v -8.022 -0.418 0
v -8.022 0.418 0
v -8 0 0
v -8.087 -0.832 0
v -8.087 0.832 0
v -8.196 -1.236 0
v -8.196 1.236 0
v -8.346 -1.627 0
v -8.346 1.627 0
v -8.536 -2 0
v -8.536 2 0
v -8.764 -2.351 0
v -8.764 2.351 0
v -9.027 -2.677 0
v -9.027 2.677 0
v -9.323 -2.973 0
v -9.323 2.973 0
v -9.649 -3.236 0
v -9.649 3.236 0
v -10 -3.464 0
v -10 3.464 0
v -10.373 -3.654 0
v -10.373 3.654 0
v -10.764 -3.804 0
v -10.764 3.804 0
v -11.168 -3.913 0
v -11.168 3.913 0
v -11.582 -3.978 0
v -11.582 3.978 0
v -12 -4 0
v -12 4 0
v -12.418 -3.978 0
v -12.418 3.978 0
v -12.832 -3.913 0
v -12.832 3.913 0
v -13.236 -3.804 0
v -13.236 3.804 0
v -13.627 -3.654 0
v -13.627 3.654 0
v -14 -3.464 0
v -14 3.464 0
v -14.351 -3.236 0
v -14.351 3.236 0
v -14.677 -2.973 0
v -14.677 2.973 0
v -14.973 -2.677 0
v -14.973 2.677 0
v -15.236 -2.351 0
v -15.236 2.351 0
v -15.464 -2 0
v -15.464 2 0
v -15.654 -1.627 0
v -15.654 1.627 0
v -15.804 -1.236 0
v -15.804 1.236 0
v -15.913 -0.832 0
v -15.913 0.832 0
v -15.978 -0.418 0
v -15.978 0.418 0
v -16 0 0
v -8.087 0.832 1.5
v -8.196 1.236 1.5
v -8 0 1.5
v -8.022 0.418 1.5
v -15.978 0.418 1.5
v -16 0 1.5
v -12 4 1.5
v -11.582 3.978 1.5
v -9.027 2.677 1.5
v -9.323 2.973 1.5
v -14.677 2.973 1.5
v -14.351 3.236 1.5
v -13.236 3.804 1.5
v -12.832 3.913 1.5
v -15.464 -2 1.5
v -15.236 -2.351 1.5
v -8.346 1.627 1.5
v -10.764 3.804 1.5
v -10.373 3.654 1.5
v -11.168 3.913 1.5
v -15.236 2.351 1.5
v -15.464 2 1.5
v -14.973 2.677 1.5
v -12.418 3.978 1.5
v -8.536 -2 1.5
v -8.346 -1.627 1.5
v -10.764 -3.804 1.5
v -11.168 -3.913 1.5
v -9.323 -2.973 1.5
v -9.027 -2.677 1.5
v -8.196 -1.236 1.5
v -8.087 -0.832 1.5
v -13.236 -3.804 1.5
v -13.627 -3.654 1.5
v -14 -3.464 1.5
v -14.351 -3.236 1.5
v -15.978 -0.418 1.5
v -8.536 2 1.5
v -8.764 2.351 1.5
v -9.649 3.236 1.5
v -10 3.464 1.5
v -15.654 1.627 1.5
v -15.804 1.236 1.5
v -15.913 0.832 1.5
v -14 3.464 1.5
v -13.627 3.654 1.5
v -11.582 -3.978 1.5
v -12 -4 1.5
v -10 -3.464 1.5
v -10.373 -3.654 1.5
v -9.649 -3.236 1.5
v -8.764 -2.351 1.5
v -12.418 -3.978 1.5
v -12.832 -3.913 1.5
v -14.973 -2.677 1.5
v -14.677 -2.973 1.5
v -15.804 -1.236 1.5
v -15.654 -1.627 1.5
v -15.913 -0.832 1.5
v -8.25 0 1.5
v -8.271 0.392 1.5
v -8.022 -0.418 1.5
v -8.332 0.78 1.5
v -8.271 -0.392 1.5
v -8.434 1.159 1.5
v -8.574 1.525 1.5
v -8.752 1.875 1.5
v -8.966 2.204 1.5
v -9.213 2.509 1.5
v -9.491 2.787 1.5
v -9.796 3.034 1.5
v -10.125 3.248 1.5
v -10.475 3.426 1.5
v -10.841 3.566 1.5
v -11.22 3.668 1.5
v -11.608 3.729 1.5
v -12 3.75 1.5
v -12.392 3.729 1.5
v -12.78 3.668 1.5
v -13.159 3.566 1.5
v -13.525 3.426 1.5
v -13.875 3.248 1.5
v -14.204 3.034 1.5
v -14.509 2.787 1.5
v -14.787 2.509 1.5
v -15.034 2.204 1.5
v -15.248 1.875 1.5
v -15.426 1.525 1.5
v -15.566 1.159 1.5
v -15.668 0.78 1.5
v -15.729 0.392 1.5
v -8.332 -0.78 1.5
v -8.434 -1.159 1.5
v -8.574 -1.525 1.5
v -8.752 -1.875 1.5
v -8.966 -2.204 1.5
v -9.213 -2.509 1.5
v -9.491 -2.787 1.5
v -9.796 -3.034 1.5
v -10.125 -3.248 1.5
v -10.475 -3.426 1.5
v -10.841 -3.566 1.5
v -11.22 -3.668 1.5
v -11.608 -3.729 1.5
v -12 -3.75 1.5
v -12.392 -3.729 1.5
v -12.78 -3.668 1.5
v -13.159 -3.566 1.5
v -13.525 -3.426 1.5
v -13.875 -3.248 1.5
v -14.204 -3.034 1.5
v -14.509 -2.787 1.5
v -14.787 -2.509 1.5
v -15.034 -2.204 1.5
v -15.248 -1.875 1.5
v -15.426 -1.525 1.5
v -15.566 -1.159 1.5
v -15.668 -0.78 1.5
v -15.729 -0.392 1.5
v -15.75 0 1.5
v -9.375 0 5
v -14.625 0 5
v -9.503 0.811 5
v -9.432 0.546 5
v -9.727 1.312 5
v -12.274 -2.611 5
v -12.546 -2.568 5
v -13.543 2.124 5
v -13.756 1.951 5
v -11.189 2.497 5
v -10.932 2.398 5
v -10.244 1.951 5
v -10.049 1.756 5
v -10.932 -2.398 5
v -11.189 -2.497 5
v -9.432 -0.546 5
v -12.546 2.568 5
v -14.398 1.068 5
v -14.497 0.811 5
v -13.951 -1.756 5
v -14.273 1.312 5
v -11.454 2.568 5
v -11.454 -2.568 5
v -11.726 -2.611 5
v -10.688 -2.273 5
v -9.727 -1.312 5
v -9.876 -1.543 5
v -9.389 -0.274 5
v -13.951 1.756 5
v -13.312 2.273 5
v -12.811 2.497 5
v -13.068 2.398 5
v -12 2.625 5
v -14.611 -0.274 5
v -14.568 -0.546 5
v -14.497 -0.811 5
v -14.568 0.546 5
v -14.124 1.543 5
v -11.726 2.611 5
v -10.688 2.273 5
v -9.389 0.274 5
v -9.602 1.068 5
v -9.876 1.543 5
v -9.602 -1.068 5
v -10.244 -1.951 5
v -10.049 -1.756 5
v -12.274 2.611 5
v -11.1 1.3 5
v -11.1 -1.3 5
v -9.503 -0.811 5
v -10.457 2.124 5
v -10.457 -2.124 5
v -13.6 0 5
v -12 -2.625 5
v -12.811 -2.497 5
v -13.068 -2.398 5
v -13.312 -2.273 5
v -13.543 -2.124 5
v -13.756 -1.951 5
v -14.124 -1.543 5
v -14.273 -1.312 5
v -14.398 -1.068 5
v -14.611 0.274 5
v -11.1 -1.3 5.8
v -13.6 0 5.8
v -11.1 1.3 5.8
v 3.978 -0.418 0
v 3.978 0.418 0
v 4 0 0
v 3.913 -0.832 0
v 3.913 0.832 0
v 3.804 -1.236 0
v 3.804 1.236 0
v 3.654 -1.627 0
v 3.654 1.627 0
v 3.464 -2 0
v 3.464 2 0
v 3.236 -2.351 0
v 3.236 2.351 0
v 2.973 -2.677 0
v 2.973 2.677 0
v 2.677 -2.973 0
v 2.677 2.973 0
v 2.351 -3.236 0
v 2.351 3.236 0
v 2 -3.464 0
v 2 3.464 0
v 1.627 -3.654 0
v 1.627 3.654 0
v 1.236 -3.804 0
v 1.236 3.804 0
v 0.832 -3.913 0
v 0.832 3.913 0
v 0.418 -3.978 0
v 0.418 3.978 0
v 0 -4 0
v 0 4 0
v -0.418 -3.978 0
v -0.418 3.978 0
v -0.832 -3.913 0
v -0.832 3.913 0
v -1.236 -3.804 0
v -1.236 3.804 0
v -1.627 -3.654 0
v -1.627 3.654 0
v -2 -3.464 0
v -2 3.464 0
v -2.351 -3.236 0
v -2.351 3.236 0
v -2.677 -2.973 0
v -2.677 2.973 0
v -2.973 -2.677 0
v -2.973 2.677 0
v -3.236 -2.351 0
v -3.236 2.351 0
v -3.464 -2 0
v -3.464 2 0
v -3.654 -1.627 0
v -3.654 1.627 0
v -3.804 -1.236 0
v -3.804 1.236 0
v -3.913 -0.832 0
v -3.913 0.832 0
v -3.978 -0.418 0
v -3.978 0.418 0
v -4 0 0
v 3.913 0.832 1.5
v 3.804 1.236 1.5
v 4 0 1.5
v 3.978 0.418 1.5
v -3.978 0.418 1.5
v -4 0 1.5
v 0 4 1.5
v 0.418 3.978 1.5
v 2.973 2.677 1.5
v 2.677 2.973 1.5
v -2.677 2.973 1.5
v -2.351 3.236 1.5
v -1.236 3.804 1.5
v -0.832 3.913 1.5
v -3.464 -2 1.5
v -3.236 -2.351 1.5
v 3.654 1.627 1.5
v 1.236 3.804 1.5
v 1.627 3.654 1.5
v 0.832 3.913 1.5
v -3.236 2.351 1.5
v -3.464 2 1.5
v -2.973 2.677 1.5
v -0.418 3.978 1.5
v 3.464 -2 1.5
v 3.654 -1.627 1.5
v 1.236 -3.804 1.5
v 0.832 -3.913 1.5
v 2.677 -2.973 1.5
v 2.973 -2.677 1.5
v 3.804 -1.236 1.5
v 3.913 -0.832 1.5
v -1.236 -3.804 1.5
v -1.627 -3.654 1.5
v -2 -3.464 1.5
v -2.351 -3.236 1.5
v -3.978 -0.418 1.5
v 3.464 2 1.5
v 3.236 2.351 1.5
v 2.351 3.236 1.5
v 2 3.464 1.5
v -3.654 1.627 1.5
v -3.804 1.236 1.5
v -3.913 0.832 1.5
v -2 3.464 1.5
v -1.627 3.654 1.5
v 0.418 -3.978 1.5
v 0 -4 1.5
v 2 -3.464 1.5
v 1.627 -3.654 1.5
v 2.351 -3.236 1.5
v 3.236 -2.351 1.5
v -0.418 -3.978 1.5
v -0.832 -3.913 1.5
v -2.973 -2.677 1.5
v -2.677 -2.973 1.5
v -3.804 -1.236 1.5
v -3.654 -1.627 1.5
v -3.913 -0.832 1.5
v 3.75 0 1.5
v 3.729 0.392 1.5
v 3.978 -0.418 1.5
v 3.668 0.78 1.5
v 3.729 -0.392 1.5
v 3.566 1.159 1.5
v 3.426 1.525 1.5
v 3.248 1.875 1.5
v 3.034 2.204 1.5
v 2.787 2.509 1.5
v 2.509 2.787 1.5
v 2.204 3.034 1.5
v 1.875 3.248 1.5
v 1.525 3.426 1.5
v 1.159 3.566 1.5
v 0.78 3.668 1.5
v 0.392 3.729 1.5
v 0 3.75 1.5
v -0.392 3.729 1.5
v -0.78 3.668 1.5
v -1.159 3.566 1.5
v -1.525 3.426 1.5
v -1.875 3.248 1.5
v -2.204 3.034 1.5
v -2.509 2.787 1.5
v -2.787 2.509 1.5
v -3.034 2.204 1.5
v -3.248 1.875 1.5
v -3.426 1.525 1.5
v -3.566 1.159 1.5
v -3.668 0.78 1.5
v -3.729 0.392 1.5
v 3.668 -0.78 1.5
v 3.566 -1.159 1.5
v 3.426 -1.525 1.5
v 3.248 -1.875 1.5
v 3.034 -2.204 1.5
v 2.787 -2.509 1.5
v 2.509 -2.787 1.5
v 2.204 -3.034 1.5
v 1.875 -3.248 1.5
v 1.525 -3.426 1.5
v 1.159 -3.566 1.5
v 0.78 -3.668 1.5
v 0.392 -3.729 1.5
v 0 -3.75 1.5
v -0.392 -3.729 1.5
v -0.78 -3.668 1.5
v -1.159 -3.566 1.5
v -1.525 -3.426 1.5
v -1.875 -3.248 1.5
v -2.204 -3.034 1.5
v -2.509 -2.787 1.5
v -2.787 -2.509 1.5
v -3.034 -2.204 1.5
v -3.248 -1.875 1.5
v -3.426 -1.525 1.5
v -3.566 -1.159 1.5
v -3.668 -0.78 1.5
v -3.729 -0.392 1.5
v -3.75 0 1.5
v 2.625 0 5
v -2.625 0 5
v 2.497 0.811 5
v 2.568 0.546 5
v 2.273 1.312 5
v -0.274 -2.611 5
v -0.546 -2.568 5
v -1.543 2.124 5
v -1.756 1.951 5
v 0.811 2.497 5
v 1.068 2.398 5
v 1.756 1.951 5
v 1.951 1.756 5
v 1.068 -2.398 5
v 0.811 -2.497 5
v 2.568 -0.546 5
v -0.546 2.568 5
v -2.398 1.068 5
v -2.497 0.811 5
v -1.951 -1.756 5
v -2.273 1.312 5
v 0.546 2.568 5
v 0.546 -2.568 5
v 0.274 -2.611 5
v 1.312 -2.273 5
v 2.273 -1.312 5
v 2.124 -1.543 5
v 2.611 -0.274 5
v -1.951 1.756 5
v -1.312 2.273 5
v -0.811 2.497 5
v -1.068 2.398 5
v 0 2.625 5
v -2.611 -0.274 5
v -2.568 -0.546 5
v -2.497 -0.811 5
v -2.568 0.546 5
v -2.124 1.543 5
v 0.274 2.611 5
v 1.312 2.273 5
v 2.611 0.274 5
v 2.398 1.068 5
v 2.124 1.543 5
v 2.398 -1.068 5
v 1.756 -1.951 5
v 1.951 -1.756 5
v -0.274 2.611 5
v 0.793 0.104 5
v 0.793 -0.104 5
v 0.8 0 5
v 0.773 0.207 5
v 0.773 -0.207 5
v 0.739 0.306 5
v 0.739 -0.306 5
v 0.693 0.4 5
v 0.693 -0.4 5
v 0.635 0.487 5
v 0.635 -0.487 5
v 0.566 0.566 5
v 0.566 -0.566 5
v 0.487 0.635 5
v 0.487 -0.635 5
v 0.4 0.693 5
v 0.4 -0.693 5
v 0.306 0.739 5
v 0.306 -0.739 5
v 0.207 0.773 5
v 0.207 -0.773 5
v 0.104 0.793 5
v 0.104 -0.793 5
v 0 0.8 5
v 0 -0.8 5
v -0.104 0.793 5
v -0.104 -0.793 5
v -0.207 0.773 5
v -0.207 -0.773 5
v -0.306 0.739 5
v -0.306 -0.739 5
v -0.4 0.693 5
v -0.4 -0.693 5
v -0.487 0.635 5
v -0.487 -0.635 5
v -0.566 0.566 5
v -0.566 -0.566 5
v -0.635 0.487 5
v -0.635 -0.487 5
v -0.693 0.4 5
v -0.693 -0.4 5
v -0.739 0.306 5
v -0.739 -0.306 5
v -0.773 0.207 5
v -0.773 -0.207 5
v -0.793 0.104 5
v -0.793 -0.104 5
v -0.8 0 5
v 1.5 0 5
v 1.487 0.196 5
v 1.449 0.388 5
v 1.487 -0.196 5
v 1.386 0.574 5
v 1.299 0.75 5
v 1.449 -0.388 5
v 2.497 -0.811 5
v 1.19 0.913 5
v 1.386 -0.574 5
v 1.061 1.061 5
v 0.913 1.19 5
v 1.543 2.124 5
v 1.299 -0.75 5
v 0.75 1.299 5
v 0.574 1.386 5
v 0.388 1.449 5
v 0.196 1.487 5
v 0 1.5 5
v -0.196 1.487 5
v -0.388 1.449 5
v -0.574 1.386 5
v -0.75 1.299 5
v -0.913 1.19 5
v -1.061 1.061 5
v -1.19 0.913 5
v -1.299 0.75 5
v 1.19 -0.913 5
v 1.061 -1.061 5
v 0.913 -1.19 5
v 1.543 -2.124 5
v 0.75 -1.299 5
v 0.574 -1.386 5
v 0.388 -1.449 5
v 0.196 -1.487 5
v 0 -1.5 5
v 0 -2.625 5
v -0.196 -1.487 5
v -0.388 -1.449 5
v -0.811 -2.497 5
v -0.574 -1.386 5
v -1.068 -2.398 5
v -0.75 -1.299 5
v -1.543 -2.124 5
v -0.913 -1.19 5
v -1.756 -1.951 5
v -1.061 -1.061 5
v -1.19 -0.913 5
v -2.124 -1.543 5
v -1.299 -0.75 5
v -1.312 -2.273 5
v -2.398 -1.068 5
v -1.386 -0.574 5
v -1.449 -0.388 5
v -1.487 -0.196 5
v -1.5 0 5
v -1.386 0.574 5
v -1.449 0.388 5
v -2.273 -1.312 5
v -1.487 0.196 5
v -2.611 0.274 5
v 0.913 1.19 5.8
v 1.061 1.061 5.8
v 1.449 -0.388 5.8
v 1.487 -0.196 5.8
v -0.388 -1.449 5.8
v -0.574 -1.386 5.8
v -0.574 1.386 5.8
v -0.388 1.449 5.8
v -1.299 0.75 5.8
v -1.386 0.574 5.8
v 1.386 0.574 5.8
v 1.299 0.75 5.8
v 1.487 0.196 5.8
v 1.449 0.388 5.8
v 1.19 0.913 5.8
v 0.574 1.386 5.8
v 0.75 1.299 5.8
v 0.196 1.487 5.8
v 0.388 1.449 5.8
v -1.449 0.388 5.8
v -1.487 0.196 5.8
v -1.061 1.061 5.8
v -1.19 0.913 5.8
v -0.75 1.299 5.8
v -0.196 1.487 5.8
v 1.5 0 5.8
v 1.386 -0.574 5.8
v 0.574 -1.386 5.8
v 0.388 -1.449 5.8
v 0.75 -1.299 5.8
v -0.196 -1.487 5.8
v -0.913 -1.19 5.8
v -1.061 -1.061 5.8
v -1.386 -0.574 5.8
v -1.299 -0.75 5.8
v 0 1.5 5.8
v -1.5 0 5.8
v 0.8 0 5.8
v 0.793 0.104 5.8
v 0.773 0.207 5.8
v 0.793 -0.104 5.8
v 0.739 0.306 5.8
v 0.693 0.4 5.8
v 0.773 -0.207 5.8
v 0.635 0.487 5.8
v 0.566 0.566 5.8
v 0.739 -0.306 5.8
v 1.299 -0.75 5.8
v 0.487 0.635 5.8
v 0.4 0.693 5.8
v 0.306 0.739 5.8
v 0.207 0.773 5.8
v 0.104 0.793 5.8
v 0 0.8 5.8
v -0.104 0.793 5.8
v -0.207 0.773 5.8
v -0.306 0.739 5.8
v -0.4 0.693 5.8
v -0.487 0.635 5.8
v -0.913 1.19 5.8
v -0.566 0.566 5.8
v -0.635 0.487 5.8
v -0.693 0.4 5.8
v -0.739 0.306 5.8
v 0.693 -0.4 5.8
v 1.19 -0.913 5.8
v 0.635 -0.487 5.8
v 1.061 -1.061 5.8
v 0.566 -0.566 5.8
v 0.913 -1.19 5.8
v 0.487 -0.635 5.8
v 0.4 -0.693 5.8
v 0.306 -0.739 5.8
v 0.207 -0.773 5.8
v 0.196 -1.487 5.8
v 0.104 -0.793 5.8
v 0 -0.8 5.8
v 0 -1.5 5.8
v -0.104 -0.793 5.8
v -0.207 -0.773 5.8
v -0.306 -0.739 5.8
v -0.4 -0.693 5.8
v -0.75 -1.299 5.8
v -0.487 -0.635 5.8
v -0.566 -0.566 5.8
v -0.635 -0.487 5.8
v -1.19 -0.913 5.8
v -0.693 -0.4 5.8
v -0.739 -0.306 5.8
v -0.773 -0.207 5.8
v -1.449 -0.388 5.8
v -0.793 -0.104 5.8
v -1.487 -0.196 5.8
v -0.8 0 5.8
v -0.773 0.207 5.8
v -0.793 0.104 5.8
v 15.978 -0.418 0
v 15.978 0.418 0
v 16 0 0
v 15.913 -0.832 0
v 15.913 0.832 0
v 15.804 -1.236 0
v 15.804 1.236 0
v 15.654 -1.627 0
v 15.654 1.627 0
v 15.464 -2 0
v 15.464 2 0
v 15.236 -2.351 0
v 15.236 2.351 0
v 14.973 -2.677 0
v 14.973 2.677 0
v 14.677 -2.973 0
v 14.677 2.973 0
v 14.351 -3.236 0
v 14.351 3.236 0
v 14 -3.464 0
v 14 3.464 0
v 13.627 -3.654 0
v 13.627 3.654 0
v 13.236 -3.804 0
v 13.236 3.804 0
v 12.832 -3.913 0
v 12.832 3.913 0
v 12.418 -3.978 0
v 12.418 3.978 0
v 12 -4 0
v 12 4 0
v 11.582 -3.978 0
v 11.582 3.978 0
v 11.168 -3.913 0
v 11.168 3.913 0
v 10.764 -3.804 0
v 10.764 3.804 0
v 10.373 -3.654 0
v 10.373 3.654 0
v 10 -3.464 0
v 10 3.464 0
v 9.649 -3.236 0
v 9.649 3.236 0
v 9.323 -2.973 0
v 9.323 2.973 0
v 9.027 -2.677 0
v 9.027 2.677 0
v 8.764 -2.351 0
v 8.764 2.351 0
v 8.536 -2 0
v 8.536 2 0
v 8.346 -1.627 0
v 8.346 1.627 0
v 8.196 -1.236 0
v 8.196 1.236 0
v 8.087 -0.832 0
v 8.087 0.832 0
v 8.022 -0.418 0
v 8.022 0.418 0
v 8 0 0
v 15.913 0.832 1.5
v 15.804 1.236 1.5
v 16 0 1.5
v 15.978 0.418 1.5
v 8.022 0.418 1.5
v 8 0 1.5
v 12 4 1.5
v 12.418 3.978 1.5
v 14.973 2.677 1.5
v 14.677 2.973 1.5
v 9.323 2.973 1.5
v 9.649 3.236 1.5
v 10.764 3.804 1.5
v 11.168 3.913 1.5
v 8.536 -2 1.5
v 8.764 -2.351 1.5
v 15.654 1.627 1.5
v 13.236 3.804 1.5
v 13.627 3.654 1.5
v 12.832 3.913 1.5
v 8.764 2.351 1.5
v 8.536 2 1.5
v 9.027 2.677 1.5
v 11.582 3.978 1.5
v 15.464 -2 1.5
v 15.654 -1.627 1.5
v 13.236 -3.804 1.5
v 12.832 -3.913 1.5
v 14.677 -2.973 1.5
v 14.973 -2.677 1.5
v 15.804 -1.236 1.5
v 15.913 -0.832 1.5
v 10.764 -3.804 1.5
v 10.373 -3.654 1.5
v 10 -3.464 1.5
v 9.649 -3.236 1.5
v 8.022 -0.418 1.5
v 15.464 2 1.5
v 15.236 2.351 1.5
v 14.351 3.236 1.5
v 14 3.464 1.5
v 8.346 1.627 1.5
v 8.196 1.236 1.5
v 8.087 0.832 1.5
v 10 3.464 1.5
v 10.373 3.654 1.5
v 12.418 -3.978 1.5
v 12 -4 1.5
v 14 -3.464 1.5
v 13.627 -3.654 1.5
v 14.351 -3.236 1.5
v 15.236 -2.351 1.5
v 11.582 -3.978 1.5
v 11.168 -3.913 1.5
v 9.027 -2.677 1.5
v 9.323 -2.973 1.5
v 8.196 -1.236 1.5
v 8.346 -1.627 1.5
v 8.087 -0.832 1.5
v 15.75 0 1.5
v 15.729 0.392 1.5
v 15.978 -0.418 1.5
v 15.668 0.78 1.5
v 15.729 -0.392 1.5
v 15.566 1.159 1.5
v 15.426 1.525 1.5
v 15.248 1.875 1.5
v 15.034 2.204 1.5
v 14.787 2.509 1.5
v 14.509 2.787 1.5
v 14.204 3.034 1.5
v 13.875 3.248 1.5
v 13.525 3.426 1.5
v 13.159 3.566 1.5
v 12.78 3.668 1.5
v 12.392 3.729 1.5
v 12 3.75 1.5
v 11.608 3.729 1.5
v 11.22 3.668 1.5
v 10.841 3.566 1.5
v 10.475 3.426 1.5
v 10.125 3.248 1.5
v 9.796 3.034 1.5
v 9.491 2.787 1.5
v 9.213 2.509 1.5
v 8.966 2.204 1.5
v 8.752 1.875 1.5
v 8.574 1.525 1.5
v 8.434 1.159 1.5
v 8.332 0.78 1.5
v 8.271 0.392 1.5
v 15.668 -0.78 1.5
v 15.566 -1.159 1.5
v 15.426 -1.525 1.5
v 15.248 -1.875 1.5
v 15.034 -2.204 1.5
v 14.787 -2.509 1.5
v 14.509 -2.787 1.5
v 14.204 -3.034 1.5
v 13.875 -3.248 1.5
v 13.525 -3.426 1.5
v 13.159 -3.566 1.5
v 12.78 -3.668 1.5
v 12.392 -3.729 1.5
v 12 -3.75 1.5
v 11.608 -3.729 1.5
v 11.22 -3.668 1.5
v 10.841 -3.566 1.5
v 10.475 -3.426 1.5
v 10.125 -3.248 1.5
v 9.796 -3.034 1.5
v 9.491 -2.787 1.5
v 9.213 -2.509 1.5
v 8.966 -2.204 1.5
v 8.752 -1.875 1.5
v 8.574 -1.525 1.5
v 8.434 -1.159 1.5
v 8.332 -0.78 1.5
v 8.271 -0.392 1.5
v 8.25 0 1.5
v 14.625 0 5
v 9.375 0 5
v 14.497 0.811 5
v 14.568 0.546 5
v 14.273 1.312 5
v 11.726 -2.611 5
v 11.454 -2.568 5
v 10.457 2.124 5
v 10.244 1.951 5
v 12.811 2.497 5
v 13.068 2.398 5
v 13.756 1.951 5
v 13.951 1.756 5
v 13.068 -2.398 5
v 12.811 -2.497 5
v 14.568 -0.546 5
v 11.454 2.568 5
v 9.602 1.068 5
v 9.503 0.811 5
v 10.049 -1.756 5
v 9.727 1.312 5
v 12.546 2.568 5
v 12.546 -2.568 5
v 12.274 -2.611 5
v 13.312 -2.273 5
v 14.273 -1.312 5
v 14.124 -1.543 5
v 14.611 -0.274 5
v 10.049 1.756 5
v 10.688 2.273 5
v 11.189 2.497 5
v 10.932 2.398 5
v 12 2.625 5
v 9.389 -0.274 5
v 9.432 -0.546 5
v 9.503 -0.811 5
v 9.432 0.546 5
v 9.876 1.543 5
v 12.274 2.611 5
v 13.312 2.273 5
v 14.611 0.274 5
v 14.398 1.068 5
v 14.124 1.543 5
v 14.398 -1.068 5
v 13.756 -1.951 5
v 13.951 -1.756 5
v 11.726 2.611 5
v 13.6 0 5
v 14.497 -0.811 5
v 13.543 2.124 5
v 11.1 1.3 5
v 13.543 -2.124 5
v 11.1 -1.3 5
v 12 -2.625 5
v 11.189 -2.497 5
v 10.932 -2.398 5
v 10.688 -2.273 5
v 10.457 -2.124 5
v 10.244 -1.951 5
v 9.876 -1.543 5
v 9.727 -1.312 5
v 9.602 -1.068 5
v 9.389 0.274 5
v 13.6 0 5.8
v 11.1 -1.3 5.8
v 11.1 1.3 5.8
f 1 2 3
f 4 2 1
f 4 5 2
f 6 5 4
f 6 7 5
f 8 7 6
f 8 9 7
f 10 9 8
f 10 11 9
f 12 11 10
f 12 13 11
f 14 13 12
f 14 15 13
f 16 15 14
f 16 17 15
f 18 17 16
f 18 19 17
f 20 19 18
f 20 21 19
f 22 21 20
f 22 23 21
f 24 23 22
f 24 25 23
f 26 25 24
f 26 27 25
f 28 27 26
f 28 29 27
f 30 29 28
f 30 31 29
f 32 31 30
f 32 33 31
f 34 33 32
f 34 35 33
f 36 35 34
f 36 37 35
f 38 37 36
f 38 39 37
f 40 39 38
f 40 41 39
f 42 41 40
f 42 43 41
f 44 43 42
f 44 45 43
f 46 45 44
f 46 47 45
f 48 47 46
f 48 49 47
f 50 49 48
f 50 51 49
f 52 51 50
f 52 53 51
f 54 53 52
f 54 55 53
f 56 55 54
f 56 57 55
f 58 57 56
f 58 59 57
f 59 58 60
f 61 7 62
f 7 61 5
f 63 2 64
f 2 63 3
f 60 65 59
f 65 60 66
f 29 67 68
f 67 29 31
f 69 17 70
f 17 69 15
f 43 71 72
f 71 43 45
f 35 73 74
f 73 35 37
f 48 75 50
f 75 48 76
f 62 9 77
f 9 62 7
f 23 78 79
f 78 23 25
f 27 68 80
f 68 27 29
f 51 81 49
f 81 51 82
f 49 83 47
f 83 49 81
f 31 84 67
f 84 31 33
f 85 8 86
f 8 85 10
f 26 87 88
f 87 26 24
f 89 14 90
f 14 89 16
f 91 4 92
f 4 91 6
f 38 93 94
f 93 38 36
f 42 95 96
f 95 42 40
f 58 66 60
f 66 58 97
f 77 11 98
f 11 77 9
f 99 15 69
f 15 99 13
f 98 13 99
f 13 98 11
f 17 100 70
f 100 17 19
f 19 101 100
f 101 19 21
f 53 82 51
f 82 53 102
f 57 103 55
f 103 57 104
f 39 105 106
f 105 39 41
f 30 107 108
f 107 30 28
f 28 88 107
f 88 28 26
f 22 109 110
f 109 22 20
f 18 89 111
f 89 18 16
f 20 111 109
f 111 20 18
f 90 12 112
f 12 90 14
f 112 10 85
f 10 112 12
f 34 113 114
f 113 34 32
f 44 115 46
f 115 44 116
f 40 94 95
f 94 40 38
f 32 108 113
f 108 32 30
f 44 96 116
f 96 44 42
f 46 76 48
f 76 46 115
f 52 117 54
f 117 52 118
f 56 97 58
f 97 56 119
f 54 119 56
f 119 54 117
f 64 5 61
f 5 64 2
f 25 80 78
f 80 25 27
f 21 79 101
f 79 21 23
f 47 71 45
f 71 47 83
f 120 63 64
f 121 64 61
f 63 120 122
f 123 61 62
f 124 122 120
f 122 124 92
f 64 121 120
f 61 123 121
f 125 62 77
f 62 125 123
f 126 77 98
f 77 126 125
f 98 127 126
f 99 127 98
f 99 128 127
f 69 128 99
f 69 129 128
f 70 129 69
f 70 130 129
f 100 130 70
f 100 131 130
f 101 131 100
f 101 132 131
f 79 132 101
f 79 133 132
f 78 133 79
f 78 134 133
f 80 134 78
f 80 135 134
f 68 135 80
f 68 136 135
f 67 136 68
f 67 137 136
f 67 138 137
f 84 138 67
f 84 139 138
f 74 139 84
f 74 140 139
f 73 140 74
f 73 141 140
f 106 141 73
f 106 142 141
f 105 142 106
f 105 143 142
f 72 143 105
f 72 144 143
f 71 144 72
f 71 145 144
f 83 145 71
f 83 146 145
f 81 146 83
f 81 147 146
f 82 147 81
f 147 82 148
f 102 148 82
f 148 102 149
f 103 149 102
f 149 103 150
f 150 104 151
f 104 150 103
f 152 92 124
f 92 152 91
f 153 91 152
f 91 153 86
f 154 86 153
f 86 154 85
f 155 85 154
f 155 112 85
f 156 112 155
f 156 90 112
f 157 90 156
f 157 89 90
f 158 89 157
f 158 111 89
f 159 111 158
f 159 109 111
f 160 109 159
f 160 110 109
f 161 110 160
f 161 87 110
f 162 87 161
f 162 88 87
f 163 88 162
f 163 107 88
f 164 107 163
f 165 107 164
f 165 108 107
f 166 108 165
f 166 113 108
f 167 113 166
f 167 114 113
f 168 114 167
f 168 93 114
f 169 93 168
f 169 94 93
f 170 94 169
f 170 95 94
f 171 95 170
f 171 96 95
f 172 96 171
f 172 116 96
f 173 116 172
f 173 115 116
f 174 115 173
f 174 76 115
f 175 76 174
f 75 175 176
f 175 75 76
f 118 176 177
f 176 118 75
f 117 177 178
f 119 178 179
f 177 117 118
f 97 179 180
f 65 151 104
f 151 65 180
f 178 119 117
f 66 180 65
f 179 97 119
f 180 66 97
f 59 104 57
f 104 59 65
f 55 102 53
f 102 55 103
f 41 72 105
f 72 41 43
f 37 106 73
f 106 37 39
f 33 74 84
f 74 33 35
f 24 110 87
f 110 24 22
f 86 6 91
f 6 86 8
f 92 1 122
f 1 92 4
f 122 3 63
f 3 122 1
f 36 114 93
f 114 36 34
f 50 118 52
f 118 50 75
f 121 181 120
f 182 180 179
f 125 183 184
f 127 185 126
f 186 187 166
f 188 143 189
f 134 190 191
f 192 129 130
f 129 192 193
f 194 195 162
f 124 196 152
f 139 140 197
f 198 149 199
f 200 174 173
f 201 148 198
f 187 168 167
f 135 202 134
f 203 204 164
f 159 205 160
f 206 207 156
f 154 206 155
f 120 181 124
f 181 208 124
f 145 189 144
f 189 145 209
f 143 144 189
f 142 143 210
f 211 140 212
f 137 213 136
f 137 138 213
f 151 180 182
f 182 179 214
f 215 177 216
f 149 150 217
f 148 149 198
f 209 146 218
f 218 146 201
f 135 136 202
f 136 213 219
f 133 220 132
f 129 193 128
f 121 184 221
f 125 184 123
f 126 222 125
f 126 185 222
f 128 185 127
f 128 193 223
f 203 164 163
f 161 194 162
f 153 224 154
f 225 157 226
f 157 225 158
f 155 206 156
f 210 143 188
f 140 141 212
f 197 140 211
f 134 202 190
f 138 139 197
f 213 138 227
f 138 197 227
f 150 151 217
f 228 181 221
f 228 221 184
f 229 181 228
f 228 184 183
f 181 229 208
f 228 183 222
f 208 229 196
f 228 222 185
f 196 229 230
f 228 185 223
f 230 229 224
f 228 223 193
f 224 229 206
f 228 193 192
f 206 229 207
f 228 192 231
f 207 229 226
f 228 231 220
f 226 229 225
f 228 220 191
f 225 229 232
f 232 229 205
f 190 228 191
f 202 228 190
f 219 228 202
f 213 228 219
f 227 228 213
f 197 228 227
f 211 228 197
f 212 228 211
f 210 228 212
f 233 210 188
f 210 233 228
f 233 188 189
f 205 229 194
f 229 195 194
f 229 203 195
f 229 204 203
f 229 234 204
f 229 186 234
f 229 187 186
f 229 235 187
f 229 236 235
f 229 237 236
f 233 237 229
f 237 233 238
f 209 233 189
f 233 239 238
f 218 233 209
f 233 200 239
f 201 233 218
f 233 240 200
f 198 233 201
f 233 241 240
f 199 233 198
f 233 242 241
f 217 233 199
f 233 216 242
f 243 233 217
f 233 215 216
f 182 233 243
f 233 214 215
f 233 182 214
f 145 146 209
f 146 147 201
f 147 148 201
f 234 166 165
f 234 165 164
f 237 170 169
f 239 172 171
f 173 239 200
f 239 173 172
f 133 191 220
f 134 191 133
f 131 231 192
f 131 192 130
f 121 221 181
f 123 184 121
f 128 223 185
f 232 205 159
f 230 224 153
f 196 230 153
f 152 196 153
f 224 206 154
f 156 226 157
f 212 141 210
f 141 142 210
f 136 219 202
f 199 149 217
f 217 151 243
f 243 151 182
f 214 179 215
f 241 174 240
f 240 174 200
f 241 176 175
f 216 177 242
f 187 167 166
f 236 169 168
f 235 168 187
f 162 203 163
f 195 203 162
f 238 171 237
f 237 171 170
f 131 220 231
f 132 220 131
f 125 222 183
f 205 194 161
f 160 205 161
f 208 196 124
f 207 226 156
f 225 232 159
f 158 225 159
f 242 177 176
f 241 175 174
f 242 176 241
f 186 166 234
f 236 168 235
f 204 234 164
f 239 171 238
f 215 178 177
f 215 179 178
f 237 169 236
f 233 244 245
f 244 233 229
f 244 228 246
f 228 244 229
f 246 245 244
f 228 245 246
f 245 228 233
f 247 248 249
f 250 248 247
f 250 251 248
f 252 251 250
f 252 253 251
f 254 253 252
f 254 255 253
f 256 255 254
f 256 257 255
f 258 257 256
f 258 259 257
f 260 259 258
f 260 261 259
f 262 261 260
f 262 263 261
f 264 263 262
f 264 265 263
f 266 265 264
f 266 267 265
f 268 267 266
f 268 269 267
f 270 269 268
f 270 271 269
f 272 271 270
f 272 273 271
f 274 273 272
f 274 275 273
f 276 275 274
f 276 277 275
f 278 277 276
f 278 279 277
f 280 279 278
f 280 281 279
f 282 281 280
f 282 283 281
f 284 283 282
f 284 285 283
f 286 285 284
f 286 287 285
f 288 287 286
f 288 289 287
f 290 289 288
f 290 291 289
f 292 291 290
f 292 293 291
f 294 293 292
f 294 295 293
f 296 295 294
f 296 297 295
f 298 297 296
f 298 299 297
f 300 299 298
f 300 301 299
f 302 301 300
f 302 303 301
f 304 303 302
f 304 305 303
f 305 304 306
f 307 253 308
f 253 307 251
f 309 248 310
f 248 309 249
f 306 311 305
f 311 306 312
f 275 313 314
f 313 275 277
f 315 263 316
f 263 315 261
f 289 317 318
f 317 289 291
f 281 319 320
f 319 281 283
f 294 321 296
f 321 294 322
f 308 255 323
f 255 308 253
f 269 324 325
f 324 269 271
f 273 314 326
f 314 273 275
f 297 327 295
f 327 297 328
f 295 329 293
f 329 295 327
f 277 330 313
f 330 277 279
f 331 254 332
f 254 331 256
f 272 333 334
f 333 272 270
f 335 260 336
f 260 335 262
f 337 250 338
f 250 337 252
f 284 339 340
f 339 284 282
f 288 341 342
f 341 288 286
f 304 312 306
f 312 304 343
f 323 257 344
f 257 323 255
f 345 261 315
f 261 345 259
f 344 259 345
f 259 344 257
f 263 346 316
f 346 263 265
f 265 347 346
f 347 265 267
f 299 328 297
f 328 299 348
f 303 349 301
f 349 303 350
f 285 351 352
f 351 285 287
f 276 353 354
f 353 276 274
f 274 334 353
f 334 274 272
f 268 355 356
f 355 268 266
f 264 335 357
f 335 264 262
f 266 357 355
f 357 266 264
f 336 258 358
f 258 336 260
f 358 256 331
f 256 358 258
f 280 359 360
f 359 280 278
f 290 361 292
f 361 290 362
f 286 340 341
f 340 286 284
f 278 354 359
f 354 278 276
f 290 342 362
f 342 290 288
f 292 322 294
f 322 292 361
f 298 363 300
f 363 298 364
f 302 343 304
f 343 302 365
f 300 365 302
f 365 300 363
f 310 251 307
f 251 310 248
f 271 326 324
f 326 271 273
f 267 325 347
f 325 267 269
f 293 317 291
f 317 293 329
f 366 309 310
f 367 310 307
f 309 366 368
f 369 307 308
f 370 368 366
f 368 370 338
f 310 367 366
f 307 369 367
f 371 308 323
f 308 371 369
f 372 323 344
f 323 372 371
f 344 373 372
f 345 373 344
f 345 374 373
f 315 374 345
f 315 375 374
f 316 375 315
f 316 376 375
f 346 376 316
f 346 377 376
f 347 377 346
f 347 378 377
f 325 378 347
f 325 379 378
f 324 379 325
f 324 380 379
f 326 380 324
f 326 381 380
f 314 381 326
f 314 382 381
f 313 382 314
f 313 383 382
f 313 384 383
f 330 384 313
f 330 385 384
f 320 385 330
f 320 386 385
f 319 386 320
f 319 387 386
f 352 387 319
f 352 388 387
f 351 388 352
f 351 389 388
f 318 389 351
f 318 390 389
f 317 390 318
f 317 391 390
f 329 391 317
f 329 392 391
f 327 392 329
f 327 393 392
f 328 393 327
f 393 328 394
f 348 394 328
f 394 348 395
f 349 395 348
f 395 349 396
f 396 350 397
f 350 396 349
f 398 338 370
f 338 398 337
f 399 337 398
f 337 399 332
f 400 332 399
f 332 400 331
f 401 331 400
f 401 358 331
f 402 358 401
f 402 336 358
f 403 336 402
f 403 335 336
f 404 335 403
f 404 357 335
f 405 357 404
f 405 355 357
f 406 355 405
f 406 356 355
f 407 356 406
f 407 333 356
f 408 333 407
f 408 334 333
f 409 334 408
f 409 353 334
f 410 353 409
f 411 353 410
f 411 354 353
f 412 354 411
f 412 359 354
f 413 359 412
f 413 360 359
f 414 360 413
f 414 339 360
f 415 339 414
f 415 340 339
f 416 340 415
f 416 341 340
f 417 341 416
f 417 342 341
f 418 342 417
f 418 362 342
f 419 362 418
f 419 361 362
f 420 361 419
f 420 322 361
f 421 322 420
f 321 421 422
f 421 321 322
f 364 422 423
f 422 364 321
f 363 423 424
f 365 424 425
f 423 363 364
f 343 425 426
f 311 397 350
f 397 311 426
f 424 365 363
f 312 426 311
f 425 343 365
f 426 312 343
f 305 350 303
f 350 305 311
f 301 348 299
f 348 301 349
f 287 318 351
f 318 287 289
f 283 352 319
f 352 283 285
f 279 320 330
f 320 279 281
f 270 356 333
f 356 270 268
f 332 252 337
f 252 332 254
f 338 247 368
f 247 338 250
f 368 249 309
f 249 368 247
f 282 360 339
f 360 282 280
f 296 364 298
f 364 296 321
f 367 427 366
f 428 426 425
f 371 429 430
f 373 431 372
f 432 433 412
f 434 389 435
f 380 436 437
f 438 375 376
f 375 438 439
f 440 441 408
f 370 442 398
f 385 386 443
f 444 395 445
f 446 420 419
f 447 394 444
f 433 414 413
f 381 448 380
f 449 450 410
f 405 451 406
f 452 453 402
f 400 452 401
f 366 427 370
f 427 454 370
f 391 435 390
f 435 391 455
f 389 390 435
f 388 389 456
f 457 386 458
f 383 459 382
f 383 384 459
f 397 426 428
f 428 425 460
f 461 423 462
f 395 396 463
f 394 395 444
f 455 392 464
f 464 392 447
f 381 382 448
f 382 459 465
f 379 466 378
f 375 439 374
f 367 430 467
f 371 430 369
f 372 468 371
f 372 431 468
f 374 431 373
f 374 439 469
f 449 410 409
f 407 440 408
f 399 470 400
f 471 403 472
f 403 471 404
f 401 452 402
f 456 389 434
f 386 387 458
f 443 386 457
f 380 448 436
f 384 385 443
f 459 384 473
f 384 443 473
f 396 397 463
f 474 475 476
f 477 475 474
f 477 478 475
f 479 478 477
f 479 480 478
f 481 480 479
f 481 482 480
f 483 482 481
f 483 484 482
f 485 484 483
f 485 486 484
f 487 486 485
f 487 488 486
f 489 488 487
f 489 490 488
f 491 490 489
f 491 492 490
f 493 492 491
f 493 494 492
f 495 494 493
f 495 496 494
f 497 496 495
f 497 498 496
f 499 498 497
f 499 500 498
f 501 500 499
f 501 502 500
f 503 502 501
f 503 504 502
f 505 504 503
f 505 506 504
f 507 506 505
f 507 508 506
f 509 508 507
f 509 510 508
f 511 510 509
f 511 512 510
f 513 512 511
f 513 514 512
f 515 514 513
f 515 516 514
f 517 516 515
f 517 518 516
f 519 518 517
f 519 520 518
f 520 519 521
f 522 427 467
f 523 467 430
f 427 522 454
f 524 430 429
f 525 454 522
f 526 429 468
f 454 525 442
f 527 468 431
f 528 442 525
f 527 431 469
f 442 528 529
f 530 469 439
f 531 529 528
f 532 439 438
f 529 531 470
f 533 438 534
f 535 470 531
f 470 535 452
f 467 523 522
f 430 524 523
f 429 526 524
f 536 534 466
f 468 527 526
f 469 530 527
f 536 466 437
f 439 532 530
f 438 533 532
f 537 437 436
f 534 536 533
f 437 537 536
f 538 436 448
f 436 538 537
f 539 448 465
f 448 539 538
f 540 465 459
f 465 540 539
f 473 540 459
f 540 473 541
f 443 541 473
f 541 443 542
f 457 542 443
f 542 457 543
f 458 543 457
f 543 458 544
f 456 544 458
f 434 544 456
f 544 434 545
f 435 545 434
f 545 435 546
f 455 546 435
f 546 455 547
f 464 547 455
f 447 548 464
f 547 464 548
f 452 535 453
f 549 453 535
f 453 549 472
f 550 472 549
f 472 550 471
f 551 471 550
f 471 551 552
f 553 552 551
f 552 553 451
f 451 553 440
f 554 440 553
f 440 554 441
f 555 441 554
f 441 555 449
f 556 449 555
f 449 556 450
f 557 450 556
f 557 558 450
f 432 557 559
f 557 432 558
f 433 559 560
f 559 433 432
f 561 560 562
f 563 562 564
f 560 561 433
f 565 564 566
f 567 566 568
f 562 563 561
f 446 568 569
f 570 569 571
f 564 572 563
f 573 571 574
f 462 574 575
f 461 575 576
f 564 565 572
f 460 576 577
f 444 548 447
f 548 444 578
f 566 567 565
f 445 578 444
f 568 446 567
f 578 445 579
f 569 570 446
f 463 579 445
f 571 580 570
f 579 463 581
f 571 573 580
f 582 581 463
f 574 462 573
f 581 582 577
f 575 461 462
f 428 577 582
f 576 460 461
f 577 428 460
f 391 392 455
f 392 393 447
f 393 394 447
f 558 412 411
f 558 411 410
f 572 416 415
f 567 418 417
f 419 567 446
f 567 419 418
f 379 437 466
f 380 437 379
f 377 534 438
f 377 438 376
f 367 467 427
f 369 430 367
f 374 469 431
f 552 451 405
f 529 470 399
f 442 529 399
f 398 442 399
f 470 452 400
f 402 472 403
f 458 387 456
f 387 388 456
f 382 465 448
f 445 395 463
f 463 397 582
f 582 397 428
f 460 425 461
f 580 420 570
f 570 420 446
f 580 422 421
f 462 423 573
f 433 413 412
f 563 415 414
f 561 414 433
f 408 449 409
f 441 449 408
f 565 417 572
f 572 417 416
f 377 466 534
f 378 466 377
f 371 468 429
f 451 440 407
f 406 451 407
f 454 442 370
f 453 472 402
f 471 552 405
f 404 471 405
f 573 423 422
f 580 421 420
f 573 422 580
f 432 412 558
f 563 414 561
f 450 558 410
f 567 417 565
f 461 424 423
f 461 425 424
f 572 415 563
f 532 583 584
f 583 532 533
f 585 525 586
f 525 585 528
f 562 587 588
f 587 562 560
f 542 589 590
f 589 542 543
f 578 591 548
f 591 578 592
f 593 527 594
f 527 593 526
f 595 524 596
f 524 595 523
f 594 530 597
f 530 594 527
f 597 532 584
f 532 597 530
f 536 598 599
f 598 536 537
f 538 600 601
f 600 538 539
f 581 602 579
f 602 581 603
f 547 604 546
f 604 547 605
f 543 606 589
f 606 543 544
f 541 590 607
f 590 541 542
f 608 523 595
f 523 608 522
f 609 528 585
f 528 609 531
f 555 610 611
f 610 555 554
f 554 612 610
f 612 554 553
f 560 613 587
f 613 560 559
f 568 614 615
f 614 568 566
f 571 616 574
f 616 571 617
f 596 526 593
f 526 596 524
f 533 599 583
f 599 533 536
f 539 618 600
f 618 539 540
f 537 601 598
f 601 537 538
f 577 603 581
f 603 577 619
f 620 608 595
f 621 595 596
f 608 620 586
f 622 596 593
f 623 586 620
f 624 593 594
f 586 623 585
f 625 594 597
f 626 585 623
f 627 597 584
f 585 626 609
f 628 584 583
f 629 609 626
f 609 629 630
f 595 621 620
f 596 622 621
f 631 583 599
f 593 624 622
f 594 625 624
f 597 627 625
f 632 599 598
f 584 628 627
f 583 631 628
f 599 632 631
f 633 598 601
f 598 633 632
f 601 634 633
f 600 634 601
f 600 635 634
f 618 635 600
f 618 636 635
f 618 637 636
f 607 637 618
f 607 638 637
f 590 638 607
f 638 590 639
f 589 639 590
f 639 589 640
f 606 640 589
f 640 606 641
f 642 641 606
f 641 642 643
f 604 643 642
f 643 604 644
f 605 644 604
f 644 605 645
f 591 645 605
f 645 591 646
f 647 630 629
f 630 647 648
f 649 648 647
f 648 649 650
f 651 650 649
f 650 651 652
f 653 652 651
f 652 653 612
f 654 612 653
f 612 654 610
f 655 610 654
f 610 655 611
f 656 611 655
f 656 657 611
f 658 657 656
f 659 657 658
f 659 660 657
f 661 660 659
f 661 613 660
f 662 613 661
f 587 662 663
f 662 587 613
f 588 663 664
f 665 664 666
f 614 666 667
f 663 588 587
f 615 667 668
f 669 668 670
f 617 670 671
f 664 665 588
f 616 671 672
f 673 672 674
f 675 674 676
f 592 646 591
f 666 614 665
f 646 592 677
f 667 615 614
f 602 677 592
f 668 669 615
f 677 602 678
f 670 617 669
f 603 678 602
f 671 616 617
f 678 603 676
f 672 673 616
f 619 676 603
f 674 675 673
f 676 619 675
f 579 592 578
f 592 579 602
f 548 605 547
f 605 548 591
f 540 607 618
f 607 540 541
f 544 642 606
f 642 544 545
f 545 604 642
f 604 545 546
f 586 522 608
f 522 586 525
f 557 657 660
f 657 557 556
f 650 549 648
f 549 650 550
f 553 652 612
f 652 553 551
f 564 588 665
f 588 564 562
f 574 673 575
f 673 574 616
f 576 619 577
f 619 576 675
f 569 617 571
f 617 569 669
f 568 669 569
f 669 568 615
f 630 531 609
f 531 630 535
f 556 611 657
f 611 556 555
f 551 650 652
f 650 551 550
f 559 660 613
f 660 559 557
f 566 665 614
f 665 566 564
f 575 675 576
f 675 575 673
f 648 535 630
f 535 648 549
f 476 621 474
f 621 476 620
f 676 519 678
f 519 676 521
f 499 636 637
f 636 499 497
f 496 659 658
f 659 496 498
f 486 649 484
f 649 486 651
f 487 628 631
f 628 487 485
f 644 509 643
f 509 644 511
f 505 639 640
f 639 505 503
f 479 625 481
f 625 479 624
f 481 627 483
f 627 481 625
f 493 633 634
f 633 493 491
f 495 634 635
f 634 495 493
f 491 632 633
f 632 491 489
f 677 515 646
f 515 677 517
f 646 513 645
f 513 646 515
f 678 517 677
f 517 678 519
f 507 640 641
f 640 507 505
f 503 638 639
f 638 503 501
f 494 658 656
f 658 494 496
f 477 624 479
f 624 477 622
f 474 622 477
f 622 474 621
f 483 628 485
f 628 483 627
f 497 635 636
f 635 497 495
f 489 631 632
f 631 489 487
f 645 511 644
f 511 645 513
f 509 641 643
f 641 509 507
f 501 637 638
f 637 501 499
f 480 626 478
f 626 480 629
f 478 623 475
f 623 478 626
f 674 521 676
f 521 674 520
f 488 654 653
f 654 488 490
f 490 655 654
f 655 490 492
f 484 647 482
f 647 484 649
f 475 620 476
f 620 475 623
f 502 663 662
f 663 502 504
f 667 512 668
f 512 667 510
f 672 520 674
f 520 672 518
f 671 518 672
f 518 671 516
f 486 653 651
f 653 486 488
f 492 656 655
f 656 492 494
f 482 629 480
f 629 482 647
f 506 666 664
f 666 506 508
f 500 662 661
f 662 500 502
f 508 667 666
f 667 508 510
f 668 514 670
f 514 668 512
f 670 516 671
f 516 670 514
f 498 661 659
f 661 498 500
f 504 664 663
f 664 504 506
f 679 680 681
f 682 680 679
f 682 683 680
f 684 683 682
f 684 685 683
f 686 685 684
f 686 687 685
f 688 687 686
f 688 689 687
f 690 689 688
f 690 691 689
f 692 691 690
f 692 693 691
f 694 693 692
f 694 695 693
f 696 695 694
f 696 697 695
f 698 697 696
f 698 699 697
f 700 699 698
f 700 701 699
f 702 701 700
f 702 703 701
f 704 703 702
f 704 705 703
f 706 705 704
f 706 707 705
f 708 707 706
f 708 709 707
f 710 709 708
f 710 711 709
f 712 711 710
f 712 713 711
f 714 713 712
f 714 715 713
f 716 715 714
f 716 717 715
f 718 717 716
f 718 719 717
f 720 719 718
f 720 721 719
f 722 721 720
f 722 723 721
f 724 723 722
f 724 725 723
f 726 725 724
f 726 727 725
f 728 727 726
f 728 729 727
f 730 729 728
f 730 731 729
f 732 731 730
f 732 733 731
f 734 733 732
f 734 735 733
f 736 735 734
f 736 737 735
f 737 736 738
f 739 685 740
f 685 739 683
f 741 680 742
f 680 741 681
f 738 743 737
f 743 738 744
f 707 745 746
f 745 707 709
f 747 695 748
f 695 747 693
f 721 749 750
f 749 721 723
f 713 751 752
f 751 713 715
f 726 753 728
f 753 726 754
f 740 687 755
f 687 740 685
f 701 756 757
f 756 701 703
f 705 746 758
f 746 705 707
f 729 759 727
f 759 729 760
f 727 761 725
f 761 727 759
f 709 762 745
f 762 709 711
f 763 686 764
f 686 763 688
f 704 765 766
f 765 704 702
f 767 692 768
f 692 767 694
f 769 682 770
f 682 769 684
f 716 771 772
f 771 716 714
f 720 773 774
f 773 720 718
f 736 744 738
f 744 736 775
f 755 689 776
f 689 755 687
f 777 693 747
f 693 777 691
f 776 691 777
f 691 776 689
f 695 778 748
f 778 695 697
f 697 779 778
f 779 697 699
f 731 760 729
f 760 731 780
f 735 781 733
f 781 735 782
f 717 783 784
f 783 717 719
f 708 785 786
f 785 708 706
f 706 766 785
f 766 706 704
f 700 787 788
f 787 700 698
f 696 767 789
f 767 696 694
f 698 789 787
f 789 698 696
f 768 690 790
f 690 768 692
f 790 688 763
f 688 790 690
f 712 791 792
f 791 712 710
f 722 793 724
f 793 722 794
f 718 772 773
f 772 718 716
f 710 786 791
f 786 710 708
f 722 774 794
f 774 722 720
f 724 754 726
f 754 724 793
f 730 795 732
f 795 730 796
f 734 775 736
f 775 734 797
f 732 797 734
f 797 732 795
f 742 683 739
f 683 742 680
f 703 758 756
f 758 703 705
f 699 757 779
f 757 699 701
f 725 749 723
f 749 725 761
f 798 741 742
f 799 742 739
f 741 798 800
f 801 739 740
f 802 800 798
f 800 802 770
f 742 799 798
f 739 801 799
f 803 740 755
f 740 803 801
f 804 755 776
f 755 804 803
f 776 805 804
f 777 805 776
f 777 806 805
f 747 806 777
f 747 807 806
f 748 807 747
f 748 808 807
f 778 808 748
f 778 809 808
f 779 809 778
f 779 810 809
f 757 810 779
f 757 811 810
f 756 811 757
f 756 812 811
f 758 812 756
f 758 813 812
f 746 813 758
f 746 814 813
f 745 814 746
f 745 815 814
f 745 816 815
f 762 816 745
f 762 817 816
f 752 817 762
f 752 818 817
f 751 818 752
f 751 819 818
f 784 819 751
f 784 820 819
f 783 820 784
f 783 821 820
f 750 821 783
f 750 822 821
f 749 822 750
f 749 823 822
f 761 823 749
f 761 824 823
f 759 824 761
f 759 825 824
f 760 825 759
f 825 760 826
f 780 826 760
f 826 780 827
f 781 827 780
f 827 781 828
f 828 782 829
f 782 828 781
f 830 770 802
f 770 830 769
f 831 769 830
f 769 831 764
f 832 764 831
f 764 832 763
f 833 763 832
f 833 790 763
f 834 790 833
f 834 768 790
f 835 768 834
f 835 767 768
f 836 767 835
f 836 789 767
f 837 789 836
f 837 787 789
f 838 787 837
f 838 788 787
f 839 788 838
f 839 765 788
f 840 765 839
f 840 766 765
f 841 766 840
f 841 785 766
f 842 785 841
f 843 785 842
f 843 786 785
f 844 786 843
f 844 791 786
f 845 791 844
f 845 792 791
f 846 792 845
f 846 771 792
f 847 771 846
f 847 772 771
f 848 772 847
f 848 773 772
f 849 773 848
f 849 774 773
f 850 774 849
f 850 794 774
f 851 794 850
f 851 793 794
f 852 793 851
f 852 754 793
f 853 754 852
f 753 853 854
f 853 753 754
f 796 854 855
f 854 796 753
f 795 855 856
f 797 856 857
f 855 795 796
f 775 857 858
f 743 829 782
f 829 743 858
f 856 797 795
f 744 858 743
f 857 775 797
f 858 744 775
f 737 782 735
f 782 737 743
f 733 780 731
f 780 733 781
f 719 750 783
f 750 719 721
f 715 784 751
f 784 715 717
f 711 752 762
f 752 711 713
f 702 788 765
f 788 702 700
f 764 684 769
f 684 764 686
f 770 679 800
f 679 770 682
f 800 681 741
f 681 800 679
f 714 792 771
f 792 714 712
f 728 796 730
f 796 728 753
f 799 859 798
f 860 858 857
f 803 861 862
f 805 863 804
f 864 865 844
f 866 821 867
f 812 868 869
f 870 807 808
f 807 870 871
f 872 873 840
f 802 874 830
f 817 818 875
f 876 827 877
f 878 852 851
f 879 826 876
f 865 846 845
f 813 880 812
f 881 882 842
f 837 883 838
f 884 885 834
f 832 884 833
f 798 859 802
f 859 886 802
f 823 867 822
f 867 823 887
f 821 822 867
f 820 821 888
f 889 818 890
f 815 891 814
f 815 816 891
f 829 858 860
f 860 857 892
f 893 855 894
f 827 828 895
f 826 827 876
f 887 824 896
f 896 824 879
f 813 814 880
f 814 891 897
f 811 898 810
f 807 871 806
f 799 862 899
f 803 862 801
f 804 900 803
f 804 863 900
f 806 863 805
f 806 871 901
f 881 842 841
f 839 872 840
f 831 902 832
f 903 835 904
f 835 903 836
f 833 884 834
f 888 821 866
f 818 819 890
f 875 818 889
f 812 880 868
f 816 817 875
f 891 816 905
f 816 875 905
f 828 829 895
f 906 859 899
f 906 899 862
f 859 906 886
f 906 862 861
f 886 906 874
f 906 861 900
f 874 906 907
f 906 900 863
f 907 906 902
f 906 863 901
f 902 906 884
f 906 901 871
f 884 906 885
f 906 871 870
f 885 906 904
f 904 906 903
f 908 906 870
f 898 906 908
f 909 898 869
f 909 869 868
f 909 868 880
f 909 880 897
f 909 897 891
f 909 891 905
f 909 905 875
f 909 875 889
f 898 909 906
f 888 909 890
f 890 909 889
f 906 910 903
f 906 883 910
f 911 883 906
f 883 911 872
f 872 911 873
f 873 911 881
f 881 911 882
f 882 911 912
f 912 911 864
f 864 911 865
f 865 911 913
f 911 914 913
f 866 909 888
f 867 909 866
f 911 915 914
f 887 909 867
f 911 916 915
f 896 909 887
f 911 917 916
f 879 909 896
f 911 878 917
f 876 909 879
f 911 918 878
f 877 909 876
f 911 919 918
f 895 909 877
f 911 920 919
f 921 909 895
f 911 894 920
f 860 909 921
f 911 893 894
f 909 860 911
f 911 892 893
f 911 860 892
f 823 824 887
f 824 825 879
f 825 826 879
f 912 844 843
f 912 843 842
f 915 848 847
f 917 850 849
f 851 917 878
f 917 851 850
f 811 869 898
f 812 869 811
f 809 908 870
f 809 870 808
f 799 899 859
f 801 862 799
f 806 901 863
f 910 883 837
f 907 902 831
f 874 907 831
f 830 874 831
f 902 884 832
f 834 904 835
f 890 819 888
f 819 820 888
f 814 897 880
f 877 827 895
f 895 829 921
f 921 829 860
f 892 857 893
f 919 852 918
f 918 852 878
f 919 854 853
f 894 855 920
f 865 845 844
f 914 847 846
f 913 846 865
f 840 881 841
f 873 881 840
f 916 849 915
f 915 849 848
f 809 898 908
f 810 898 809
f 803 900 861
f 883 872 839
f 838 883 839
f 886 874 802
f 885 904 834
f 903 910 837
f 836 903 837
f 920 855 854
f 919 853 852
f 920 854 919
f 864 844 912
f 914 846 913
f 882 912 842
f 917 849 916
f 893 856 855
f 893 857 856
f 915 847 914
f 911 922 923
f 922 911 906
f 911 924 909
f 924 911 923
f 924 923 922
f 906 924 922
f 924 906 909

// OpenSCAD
// file: esp32_pod_params.scad
// =========================================================
// ESP32 BRAIN POD — Shared Parameters & Base Modules
// Include this file in all pod part files.
//
// include <esp32_pod_params.scad>
// =========================================================

// --- POD SHELL DIMENSIONS ---
pod_length       = 74;     // X — long axis (USB end to pogo/dock end)
pod_width        = 38;     // Y — wide enough for magnet pockets at ±12mm
pod_height       = 58;     // Z — pogo centroid at z=30.5mm from bottom ✓
pod_wall         = 4;      // Wall thickness (floor, sides)
pod_floor        = 3;      // Floor thickness (thinner than walls — bosses add rigidity)
pod_fillet       = 2.0;    // Outer corner radius

// Lid thickness matches wall thickness for visual symmetry
lid_h            = pod_wall;   // = 4mm

// Internal cavity dimensions (used by shell AND referenced by lid lip)
pod_int_length   = pod_length - 2 * pod_wall;  // 66mm
pod_int_width    = pod_width  - 2 * pod_wall;  // 30mm (PCB=29mm, 0.5mm clearance/side)

// --- PCB MOUNTING (esp32_pod_shell.scad) ---
// ESP32 NodeMCU 30-pin: 51×29mm body, 12mm component height
pcb_boss_x_off   = 23;    // ±23mm → 46mm span (51mm PCB, 2.5mm inset each end)
pcb_boss_y_off   = 11;    // ±11mm → 22mm span (29mm PCB, 3.5mm inset each side)
pcb_boss_dia     = 4;     // Boss OD
pcb_boss_h       = 4;     // Boss height (PCB sits 4mm above floor)
pcb_boss_hole    = 2.2;   // M2 self-tap

// --- BARREL JACK (esp32_pod_lid.scad) ---
barrel_jack_dia  = 11.5;  // Standard 5.5/2.1mm panel-mount jack
barrel_jack_x    = -10;   // Offset toward USB end (-X), centred in Y

// --- USB CUTOUT (esp32_pod_shell.scad) ---
// Micro-USB programming port on LEFT face (-X end)
usb_w            = 9;
usb_h            = 5;
usb_z            = pod_floor + pcb_boss_h + 1;  // Aligns with PCB USB port

// --- POGO INTERFACE (esp32_pod_shell.scad) ---
// RIGHT face (+X), matches outer_box left-wall pogo slot
// cell pogo_z = floor(4) + (57-4)/2 = 30.5mm — must match pogo_z_from_bot
pogo_pad_w       = 10;    // = outer_box pogo_slot_w
pogo_pad_h       = 8;     // = outer_box pogo_slot_h
pogo_pad_recess  = 1;     // 1mm deep recess (audit 6.2 — prevents shorting)
pogo_z_from_bot  = 30.5;  // Must match cell pogo_z exactly ✓

// --- DOCKING SLOT (esp32_pod_shell.scad) ---
// RIGHT face — receives cell 1's tongue
dock_slot_w      = 3.3;
dock_slot_h      = 12.2;
dock_slot_depth  = 8.2;

// --- MAGNET POCKETS (esp32_pod_shell.scad) ---
// RIGHT face — 3× NeFeB disc press-fit, same ±12,0 pattern as outer_box (audit 6.3)
mag_dia          = 3.2;   // Press-fit for 3mm NeFeB
mag_depth        = 2.1;   // 2mm disc + 0.1mm
mag_y_positions  = [-12, 0, 12];
mag_z            = pod_height / 2;   // Centred vertically on RIGHT face

// --- WIFI ANTENNA GRILLE (esp32_pod_shell.scad) ---
// RIGHT end wall thinned to antenna_wall, slots cut for radiation
antenna_wall     = 1.5;
antenna_slot_w   = 2;
antenna_slot_h   = 8;
antenna_slot_count = 3;

// --- WIRE TIE POST (esp32_pod_shell.scad) ---
tie_post_dia     = 4;
tie_post_h       = 10;
tie_post_hole    = 2;

// --- NAVIGATION BUTTONS (audit §2) ---
// 3× PS-style flanged caps: Previous (<), Select (O), Next (>)
// Tactile switch: 6x6x5mm DIP, actuator at PCB+5mm height
// Cap shaft: 4.5mm long, through pod_wall(4mm), 0.5mm protrudes inside to press switch
nav_shaft_dia    = 4.0;    // cap shaft OD
nav_hole_dia     = 4.2;    // wall hole — 0.2mm sliding clearance
nav_flange_dia   = 8.0;    // flange OD — larger than hole, retains cap on outer face
nav_flange_h     = 1.5;    // flange thickness (sits flush on pod outer wall)
nav_cap_body_dia = 7.5;    // PS-style dome body OD
nav_cap_body_h   = 3.5;    // dome height above flange
nav_shaft_len    = 4.5;    // total shaft length (4mm through wall + 0.5mm inside)
// Positions on FRONT face (-Y wall), centred vertically at z=pod_height*0.42
nav_z            = pod_height * 0.42;  // ≈24.4mm — comfortable thumb height
nav_x_positions  = [-20, 0, 20];       // Previous, Select, Next (20mm pitch)

$fn = 60;

// --- SHARED BASE MODULE ---

module pod_rounded_box(l, w, h, r) {
    hull() {
        translate([-l/2 + r, -w/2 + r, 0]) cylinder(r=r, h=h);
        translate([ l/2 - r, -w/2 + r, 0]) cylinder(r=r, h=h);
        translate([-l/2 + r,  w/2 - r, 0]) cylinder(r=r, h=h);
        translate([ l/2 - r,  w/2 - r, 0]) cylinder(r=r, h=h);
    }
}
// main file
// =========================================================
// COMPONENT: NAVIGATION BUTTON CAPS — PS-Style Tactile
// Revision 2.0
// Created 2026-05-08
//
// Redesigned from v1.0:
//   - Symbols now RAISED (union, not engraved) — tactile for blind users
//   - Left cap  : ◁ filled triangle (Previous)
//   - Middle cap : ○ ring           (Select)
//   - Right cap  : ▷ filled triangle (Next)
//
// Assembly (unchanged from v1.0):
//   1. Insert cap shaft through Ø4.2mm hole in pod front wall (-Y)
//   2. Flange (Ø8mm) sits flush against outside of pod wall
//   3. Shaft protrudes 0.5mm inside pod — rests on 6x6x5mm tactile switch
//   4. Press cap → compresses switch → electrical signal
//   5. Switch spring returns cap to rest position
//
// Tactile switch: 6×6×5mm DIP
//
// Print: PETG or resin. Print flat (dome up). No supports needed.
// Post: sand dome smooth if desired. No glue — friction + switch spring retains.
// =========================================================

include <esp32_pod_params.scad>

raise_h = 0.8;   // symbol height raised above dome top — enough for blind tactile detection
$fn = 60;

// --- MODULES ---

module cap_body() {
    union() {
        // A. Shaft — inserts through pod wall, 0.5mm protrudes inside to press switch
        cylinder(d=nav_shaft_dia, h=nav_shaft_len);

        // B. Retention flange — sits on pod outer face, prevents cap falling through
        cylinder(d=nav_flange_dia, h=nav_flange_h);

        // C. PS-style tapered dome body — sits above flange on outside of pod
        translate([0, 0, nav_flange_h])
            cylinder(d1=nav_cap_body_dia, d2=nav_cap_body_dia * 0.7,
                     h=nav_cap_body_h);
    }
}

// Symbol: ◁ left-pointing filled triangle (Previous)
// Tip at left (-X), base at right (+X), centred on dome top
module symbol_triangle_left() {
    top_z = nav_flange_h + nav_cap_body_h;
    translate([0, 0, top_z])
        linear_extrude(height=raise_h)
            polygon([[-1.6,  0.0],
                     [ 0.9,  1.3],
                     [ 0.9, -1.3]]);
}

// Symbol: ○ ring (Select)
// Raised annular ring — finger can trace the circle outline
module symbol_circle_ring() {
    top_z = nav_flange_h + nav_cap_body_h;
    translate([0, 0, top_z])
        difference() {
            cylinder(d=3.0, h=raise_h, $fn=48);
            translate([0, 0, -0.1])
                cylinder(d=1.6, h=raise_h + 0.2, $fn=48);
        }
}

// Symbol: ▷ right-pointing filled triangle (Next)
// Mirror of left triangle: tip at right (+X), base at left (-X)
module symbol_triangle_right() {
    top_z = nav_flange_h + nav_cap_body_h;
    translate([0, 0, top_z])
        linear_extrude(height=raise_h)
            polygon([[ 1.6,  0.0],
                     [-0.9,  1.3],
                     [-0.9, -1.3]]);
}

// --- FULL CAPS: symbols RAISED (union) for tactile feel ---

module nav_cap_prev() {
    union() {
        cap_body();
        symbol_triangle_left();
    }
}

module nav_cap_select() {
    union() {
        cap_body();
        symbol_circle_ring();
    }
}

module nav_cap_next() {
    union() {
        cap_body();
        symbol_triangle_right();
    }
}

// --- GENERATE ALL 3 CAPS laid out for printing (12mm pitch) ---
// Shaft faces DOWN on build plate — dome + raised symbol face up — no supports needed
translate([-12, 0, 0]) nav_cap_prev();
translate([  0, 0, 0]) nav_cap_select();
translate([ 12, 0, 0]) nav_cap_next();
